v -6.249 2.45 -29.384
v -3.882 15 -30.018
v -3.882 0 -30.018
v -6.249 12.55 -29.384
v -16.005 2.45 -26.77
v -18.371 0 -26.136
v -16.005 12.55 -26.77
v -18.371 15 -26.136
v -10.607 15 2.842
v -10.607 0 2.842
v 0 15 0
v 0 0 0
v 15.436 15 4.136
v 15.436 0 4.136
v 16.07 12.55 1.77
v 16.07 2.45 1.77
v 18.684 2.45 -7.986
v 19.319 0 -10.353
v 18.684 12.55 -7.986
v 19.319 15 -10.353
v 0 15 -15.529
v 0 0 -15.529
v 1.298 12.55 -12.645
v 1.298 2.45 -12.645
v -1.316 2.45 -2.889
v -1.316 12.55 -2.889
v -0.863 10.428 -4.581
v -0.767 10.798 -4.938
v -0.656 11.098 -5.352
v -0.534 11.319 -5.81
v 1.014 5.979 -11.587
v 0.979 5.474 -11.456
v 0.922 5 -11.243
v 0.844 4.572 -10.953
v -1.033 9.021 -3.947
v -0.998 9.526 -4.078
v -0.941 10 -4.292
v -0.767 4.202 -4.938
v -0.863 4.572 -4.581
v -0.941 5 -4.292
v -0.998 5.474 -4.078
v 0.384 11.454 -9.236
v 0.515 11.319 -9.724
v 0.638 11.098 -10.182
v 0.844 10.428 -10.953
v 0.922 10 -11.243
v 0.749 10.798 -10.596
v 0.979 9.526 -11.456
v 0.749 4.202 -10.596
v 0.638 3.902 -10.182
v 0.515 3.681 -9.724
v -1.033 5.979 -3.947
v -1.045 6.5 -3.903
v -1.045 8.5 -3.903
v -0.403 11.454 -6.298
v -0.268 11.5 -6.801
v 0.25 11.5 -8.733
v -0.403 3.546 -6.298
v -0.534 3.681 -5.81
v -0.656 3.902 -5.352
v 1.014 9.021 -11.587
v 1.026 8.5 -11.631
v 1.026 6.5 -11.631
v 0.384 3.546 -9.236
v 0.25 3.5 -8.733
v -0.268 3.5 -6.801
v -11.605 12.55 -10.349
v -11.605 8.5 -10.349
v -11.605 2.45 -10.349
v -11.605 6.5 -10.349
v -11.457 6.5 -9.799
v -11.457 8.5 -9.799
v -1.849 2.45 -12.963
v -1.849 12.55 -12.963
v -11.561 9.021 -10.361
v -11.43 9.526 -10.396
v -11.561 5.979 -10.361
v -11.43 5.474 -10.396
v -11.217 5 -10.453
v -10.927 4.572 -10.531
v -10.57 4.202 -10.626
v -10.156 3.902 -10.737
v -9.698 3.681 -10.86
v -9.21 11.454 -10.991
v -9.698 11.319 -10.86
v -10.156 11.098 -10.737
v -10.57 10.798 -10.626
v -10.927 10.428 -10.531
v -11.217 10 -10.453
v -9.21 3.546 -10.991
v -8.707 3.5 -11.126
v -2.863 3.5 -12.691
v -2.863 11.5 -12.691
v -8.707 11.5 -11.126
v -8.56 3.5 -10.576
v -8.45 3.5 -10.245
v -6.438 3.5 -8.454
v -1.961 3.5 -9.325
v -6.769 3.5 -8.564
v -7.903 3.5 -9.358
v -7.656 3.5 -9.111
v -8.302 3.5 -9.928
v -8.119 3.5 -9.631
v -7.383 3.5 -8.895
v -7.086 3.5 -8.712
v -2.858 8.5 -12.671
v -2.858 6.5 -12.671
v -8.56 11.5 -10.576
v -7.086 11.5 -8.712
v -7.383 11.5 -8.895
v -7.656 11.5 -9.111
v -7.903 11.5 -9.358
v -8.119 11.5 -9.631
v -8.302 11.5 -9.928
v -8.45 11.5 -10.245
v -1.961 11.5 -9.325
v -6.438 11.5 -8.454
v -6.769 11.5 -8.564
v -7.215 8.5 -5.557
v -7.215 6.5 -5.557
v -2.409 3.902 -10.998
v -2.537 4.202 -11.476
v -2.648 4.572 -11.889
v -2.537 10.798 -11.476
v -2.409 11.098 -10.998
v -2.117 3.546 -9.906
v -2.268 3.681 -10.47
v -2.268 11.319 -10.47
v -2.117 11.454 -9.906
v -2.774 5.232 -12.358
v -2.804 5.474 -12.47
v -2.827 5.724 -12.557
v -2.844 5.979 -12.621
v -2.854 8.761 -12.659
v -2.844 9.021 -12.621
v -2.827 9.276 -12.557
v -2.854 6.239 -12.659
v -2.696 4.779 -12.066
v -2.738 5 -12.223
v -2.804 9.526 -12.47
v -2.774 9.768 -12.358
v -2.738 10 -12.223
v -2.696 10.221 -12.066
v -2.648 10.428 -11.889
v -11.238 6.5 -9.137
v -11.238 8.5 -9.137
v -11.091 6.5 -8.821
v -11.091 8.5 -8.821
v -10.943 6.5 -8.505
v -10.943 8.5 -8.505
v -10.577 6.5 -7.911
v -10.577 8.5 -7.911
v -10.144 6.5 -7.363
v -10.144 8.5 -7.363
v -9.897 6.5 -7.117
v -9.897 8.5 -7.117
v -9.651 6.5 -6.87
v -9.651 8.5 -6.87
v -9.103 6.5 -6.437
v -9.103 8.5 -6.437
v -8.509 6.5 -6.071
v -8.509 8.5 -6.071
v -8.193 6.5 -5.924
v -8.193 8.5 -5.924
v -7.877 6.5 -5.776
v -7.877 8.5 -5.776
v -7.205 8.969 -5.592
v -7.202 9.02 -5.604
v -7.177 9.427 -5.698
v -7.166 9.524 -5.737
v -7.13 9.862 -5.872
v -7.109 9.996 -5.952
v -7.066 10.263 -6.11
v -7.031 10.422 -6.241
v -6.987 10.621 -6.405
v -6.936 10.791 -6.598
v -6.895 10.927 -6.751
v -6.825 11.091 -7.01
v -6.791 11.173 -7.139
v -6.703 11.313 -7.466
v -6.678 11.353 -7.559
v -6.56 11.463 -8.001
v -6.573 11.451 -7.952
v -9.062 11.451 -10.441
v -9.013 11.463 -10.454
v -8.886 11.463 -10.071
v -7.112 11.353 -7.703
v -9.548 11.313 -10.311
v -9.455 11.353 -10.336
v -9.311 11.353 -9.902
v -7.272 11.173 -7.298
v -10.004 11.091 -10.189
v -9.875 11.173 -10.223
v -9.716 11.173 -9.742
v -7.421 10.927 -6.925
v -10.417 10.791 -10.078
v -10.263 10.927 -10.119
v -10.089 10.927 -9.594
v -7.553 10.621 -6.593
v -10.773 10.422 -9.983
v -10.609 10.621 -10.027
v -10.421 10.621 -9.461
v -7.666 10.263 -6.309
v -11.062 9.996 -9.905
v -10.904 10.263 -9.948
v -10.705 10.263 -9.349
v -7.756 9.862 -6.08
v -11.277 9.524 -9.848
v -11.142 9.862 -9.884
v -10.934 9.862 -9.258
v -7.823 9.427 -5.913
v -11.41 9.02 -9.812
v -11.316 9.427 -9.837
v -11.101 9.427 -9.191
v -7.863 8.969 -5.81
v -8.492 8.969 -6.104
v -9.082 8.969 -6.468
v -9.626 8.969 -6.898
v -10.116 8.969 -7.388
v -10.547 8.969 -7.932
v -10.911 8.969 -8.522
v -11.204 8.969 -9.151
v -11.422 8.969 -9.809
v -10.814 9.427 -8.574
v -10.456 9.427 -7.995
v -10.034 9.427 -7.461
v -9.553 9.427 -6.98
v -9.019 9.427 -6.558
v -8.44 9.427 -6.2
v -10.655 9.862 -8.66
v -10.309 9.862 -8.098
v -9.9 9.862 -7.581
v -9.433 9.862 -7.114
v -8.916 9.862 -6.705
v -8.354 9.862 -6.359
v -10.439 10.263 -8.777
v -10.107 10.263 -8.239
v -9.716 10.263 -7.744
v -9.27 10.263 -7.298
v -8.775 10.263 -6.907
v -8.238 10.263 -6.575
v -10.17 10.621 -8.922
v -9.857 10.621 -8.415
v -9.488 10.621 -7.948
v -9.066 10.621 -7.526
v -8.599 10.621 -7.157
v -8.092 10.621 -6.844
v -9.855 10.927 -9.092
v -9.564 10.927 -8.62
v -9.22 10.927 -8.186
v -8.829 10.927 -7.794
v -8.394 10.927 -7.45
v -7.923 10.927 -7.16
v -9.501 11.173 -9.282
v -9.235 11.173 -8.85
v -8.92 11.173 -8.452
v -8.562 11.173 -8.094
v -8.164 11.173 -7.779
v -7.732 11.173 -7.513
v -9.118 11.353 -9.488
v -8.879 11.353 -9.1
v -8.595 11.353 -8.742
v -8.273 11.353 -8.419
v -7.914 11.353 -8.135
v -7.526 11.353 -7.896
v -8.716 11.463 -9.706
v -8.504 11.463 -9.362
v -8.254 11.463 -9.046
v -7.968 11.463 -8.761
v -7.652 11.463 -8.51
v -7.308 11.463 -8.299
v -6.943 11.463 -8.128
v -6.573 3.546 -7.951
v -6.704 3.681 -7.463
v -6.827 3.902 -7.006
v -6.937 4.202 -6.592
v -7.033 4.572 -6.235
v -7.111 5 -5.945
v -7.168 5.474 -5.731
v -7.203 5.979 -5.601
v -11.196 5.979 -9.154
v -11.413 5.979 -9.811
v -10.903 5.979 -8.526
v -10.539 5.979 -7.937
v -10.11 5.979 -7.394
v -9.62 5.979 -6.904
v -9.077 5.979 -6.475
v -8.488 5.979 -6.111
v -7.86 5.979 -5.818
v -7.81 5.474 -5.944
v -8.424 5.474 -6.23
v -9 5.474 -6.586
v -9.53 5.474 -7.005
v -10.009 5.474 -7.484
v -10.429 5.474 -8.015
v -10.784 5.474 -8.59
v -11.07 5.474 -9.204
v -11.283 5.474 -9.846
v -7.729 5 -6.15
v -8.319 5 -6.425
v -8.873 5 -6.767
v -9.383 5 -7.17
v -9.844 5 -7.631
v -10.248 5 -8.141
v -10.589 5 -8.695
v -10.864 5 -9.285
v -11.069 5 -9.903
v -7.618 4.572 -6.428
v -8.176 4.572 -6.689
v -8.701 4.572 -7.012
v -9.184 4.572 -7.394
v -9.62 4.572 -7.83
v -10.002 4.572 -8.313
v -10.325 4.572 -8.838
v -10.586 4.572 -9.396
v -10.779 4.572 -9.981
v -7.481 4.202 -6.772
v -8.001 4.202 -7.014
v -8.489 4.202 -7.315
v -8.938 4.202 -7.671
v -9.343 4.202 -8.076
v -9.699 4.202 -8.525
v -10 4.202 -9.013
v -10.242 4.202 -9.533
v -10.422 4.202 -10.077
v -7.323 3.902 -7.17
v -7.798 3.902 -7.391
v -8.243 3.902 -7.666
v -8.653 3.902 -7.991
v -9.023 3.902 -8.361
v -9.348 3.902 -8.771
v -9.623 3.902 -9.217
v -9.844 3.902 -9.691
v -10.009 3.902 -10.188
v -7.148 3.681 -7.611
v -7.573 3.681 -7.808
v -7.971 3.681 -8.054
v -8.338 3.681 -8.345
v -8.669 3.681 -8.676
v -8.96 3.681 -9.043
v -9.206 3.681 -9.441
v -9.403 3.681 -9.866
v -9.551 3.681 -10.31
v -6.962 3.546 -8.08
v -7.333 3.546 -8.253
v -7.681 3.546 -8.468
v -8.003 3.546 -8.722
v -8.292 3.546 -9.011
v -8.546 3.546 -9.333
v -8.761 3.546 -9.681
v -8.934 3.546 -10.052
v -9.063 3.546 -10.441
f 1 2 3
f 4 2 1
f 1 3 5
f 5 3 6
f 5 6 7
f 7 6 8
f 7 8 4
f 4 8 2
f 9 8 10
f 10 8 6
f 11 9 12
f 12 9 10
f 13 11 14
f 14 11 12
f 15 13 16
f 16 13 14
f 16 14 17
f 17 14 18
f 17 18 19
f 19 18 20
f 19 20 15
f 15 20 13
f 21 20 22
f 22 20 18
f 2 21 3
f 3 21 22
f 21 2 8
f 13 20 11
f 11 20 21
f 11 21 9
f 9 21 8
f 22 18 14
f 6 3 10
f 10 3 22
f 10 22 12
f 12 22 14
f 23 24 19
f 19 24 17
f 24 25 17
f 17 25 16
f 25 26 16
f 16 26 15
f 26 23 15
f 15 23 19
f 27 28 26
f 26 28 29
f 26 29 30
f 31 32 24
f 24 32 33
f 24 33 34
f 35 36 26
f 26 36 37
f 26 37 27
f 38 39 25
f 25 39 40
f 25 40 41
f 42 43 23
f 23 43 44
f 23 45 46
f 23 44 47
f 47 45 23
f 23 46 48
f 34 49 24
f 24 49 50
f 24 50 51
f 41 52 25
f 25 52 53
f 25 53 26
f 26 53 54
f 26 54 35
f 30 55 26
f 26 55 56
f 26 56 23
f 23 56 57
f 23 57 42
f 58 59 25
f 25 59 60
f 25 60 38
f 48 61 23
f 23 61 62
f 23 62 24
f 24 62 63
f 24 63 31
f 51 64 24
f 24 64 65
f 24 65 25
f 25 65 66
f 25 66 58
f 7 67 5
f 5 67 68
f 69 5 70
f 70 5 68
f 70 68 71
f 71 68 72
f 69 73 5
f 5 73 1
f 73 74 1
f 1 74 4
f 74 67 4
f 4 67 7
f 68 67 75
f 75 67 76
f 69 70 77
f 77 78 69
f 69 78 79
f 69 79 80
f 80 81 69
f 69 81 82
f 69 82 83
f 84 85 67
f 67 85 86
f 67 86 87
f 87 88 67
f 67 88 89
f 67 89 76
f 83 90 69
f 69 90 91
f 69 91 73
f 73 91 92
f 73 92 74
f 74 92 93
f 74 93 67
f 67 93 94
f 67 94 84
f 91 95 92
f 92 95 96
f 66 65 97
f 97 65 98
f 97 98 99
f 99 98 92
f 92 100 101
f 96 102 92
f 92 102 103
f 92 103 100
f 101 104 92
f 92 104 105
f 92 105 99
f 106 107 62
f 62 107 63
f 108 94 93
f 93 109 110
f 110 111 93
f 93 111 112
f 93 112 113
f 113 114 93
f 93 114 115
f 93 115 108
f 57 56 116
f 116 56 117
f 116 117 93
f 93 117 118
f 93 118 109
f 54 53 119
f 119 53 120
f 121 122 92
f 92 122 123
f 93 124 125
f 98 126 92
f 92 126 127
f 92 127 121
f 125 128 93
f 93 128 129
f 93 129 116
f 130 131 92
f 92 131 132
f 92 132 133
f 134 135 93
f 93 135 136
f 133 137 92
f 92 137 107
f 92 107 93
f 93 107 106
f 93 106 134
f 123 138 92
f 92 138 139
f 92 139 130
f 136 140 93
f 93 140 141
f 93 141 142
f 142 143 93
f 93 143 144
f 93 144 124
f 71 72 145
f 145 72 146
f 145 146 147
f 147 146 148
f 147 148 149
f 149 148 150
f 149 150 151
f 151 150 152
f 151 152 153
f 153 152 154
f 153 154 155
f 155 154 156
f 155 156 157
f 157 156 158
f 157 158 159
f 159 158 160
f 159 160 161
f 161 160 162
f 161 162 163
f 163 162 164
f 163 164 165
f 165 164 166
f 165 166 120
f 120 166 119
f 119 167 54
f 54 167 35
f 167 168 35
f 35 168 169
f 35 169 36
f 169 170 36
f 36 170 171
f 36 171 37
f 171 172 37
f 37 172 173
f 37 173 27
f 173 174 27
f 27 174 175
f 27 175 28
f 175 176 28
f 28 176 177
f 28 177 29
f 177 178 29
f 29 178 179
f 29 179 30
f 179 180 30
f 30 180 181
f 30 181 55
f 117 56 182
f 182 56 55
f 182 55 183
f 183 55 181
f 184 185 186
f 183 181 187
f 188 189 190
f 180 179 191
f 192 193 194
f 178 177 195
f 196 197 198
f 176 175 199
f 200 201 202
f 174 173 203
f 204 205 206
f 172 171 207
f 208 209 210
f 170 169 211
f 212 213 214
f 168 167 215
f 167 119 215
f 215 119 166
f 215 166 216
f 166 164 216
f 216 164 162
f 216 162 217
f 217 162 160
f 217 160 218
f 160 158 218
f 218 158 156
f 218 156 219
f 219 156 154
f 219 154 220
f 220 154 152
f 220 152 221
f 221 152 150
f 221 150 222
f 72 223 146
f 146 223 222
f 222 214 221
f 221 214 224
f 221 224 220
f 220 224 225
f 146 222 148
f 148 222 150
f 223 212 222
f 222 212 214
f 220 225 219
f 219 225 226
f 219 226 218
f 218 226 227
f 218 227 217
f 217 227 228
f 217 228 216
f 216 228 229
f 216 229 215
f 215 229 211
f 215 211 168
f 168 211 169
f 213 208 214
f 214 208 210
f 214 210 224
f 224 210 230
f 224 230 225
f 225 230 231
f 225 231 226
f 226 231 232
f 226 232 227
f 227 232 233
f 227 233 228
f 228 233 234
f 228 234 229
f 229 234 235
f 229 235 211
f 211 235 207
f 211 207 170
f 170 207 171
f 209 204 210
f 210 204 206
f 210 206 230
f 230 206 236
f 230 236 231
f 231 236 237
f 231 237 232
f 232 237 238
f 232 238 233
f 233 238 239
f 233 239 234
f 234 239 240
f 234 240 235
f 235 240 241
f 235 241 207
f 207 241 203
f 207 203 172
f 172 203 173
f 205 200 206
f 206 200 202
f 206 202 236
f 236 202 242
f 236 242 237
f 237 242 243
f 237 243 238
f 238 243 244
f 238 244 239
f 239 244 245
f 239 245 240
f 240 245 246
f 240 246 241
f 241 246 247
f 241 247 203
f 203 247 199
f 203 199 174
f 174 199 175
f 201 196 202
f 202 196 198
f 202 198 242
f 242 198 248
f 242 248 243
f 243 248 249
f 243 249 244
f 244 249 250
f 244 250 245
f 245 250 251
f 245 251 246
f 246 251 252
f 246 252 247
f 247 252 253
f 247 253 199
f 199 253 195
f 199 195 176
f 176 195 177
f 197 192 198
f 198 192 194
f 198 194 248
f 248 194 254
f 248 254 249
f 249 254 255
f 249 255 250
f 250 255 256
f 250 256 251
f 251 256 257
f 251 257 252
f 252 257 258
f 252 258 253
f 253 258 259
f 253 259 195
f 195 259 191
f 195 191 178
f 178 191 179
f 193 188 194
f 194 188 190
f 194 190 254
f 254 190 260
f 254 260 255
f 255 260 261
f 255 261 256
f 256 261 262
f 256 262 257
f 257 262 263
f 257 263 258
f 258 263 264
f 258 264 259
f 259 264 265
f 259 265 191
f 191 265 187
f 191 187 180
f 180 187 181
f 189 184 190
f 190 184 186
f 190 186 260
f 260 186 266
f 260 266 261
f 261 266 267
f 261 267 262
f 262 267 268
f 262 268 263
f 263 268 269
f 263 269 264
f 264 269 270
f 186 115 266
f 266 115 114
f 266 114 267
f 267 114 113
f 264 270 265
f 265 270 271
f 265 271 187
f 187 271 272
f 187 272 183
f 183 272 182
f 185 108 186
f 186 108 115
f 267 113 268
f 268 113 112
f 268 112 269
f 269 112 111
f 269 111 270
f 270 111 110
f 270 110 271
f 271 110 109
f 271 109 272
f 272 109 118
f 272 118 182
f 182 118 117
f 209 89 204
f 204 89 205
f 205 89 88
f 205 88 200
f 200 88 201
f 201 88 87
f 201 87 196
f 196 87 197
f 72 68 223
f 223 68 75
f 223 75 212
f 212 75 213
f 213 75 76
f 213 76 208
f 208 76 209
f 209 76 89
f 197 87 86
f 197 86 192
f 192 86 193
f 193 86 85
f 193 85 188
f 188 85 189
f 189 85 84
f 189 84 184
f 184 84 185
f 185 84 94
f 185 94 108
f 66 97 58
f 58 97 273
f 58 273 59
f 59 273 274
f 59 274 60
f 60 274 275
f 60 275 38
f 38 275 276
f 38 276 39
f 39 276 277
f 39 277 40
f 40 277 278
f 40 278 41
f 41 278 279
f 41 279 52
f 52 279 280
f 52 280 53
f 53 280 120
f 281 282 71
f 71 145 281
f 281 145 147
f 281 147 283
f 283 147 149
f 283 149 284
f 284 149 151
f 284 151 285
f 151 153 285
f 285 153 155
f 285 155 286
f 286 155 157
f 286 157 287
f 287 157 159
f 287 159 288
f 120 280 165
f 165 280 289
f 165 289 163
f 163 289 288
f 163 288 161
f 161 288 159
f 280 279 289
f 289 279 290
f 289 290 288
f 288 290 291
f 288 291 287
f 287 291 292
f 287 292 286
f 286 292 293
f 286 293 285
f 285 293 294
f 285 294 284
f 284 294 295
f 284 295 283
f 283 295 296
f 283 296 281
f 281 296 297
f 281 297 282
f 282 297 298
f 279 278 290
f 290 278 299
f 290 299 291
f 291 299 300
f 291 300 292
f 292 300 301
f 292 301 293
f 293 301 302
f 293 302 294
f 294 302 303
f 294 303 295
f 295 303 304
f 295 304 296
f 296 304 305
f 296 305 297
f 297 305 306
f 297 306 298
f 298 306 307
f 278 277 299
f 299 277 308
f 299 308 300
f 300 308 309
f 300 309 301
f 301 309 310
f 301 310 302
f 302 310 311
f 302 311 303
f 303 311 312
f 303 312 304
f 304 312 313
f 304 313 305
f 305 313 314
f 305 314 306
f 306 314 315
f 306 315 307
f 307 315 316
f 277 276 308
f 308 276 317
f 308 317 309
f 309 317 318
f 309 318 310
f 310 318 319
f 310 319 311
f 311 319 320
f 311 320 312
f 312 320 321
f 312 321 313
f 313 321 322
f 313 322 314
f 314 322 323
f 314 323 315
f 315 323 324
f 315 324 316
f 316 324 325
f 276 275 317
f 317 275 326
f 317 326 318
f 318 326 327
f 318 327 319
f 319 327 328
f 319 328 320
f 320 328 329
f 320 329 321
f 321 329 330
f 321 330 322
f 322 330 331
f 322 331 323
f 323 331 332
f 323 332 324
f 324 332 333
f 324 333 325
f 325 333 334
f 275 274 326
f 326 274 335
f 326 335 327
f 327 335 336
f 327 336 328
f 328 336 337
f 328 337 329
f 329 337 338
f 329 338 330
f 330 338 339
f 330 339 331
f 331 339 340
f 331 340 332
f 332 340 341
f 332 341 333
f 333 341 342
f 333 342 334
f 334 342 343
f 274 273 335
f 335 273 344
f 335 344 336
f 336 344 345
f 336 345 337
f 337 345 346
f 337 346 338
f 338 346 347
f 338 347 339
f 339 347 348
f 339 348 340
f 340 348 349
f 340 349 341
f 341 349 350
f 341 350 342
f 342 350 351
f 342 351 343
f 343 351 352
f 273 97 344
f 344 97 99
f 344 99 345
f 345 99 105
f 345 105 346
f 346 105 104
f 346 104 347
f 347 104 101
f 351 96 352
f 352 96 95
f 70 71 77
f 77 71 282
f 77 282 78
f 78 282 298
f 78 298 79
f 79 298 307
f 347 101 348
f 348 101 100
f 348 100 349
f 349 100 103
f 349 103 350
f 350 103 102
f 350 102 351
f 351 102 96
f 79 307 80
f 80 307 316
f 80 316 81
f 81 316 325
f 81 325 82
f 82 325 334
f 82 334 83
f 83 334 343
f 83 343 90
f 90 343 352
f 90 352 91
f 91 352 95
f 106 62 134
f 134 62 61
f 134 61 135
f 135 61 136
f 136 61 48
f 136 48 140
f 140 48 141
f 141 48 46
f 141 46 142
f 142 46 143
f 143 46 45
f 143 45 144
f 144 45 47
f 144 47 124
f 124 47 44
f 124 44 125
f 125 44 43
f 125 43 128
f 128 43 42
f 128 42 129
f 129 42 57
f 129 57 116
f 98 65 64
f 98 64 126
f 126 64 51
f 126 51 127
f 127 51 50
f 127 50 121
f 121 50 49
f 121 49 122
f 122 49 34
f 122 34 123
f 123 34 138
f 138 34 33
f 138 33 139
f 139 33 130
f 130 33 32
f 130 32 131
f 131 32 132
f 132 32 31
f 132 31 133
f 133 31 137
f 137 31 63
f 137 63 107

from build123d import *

# Parameters (mm, degrees)
BOSS_EXTRUDE1_DEPTH = 15
SKETCH2_W           = 10.1
SKETCH2_H           = 10.1
CUT_EXTRUDE1_DEPTH  = 18
SKETCH3_W           = 10.1
SKETCH3_H           = 10.1
CUT_EXTRUDE2_DEPTH  = 17
CUT_EXTRUDE3_REACH  = 41.336
SKETCH4_W           = 8
SKETCH4_H           = 8
CUT_EXTRUDE4_REACH  = 34.317
SKETCH5_W           = 8
SKETCH5_H           = 8
FILLET1_R           = 6
FILLET2_R           = 3


with BuildPart() as part:
    # Sketch1 → Boss-Extrude1 (new body)
    with BuildSketch(Plane(origin=(0, 0, 0), x_dir=(1, 0, 0), z_dir=(0, 1, 0))):
        Polygon((0, 0), (15.436230849, -4.13612559), (19.318516526, 10.352761804), (0, 15.529142706), (-3.882285677, 30.0180301), (-18.371173071, 26.135744424), (-10.606601718, -2.842030365), align=None)
    extrude(amount=BOSS_EXTRUDE1_DEPTH)

    # Sketch2 → Cut-Extrude1 (cut)
    with BuildSketch(Plane(origin=(15.436230849, 0, 4.13612559), x_dir=(0.2588190451025214, 0, -0.9659258262890681), z_dir=(0.9659258262890681, 0, 0.2588190451025214))):
        with Locations((7.5, 7.5)):
            Rectangle(SKETCH2_W, SKETCH2_H)
    extrude(amount=-CUT_EXTRUDE1_DEPTH, mode=Mode.SUBTRACT)

    # Sketch3 → Cut-Extrude2 (cut)
    with BuildSketch(Plane(origin=(-7.764571353, 0, -28.977774789), x_dir=(-0.9659258262890682, 0, 0.2588190451025212), z_dir=(-0.2588190451025212, 0, -0.9659258262890682))):
        with Locations((3.480762114, 7.5)):
            Rectangle(SKETCH3_W, SKETCH3_H)
    extrude(amount=-CUT_EXTRUDE2_DEPTH, mode=Mode.SUBTRACT)

    # Cut-Extrude3: up to this plane
    cut_extrude3_end = Plane(origin=(-11.60473103, 12.55, -10.349112038), z_dir=(-0.9659258262890682, 0, 0.2588190451025212))
    # Sketch4 → Cut-Extrude3 (cut, up to the surface)
    with BuildSketch(Plane(origin=(-1.950434024, 0, -0.522617222), x_dir=(0.25881904510252146, 0, -0.9659258262890681), z_dir=(0.9659258262890681, 0, 0.25881904510252146)), mode=Mode.PRIVATE) as cut_extrude3_sk1:
        with Locations((7.5, 7.5)):
            Rectangle(SKETCH4_W, SKETCH4_H)
    cut_extrude3_tool1 = split(extrude(cut_extrude3_sk1.sketch, amount=-CUT_EXTRUDE3_REACH, mode=Mode.PRIVATE), bisect_by=cut_extrude3_end, keep=Keep.BOTH, mode=Mode.PRIVATE)
    add(cut_extrude3_tool1.solids().sort_by_distance((-0.009291, 7.5, -7.767061))[0], mode=Mode.SUBTRACT)

    # Cut-Extrude4: up to this face of the body (flat: up to its plane)
    cut_extrude4_end = Plane(part.part.faces().sort_by_distance((-5.802700436, 7.5, -5.178295527))[0])
    # Sketch5 → Cut-Extrude4 (cut, up to the picked face)
    with BuildSketch(Plane(origin=(-3.364647586, 0, -12.557035742), x_dir=(-0.9659258262890682, 0, 0.25881904510252124), z_dir=(-0.25881904510252124, 0, -0.9659258262890682)), mode=Mode.PRIVATE) as cut_extrude4_sk1:
        with Locations((3.480762114, 7.5)):
            Rectangle(SKETCH5_W, SKETCH5_H)
    cut_extrude4_tool1 = split(extrude(cut_extrude4_sk1.sketch, amount=-CUT_EXTRUDE4_REACH, mode=Mode.PRIVATE), bisect_by=cut_extrude4_end, keep=Keep.BOTH, mode=Mode.PRIVATE)
    add(cut_extrude4_tool1.solids().sort_by(Axis((-6.726806, 7.5, -11.656148), (0.25881904510252124, 0, 0.9659258262890682)))[0], mode=Mode.SUBTRACT)

    # Fillet1
    fillet1_edges = [part.edges().sort_by_distance(p)[0] for p in [
        (-10.560833506, 7.5, -6.453233441),
    ]]
    fillet(fillet1_edges, radius=FILLET1_R)

    # Fillet2
    fillet2_edges = [part.edges().sort_by_distance(p)[0] for p in [
        (-11.531070004, 11.5, -10.074205347),
        (-0.915876519, 11.5, -12.151084448),
        (-0.915876519, 3.5, -12.151084448),
        (-11.531070004, 3.5, -10.074205347),
        (-4.129667829, 3.5, -4.730007791),
        (-9.904494707, 3.5, -7.109572239),
        (-4.129667829, 11.5, -4.730007791),
        (-9.904494707, 11.5, -7.109572239),
    ]]
    fillet(fillet2_edges, radius=FILLET2_R)


solid = part.part
